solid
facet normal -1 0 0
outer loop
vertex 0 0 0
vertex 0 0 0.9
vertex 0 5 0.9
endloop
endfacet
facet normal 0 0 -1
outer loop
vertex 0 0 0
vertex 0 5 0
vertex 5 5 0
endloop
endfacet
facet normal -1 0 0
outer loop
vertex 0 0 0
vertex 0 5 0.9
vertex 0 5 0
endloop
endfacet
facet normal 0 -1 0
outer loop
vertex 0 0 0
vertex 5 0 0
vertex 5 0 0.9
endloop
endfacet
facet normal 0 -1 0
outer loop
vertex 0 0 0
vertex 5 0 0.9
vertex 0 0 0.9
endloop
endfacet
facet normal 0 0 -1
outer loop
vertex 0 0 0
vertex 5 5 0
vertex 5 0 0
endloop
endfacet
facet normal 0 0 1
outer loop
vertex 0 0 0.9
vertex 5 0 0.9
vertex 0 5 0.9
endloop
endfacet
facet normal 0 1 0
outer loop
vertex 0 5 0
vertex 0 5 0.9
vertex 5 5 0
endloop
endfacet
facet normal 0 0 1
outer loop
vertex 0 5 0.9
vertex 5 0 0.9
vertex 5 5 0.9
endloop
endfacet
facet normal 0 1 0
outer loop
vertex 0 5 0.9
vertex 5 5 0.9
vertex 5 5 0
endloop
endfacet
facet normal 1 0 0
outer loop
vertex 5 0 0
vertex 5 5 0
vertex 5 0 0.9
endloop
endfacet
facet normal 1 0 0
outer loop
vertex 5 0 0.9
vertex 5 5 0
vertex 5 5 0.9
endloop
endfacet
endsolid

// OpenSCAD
/* Warning, this is a very basic generator with a lot of approximation 
input data : [VQFN, PFA, 5x5x0.9mm, 32, , A, C04-01118A]
generated by com.zoubworld.electronics.cad.model3d.Basic
Date : Sun Feb 15 10:50:49 CET 2026
*/

//body
color("black")
translate([0,0,0])
cube([5.0,5.0,0.9], center=false);
